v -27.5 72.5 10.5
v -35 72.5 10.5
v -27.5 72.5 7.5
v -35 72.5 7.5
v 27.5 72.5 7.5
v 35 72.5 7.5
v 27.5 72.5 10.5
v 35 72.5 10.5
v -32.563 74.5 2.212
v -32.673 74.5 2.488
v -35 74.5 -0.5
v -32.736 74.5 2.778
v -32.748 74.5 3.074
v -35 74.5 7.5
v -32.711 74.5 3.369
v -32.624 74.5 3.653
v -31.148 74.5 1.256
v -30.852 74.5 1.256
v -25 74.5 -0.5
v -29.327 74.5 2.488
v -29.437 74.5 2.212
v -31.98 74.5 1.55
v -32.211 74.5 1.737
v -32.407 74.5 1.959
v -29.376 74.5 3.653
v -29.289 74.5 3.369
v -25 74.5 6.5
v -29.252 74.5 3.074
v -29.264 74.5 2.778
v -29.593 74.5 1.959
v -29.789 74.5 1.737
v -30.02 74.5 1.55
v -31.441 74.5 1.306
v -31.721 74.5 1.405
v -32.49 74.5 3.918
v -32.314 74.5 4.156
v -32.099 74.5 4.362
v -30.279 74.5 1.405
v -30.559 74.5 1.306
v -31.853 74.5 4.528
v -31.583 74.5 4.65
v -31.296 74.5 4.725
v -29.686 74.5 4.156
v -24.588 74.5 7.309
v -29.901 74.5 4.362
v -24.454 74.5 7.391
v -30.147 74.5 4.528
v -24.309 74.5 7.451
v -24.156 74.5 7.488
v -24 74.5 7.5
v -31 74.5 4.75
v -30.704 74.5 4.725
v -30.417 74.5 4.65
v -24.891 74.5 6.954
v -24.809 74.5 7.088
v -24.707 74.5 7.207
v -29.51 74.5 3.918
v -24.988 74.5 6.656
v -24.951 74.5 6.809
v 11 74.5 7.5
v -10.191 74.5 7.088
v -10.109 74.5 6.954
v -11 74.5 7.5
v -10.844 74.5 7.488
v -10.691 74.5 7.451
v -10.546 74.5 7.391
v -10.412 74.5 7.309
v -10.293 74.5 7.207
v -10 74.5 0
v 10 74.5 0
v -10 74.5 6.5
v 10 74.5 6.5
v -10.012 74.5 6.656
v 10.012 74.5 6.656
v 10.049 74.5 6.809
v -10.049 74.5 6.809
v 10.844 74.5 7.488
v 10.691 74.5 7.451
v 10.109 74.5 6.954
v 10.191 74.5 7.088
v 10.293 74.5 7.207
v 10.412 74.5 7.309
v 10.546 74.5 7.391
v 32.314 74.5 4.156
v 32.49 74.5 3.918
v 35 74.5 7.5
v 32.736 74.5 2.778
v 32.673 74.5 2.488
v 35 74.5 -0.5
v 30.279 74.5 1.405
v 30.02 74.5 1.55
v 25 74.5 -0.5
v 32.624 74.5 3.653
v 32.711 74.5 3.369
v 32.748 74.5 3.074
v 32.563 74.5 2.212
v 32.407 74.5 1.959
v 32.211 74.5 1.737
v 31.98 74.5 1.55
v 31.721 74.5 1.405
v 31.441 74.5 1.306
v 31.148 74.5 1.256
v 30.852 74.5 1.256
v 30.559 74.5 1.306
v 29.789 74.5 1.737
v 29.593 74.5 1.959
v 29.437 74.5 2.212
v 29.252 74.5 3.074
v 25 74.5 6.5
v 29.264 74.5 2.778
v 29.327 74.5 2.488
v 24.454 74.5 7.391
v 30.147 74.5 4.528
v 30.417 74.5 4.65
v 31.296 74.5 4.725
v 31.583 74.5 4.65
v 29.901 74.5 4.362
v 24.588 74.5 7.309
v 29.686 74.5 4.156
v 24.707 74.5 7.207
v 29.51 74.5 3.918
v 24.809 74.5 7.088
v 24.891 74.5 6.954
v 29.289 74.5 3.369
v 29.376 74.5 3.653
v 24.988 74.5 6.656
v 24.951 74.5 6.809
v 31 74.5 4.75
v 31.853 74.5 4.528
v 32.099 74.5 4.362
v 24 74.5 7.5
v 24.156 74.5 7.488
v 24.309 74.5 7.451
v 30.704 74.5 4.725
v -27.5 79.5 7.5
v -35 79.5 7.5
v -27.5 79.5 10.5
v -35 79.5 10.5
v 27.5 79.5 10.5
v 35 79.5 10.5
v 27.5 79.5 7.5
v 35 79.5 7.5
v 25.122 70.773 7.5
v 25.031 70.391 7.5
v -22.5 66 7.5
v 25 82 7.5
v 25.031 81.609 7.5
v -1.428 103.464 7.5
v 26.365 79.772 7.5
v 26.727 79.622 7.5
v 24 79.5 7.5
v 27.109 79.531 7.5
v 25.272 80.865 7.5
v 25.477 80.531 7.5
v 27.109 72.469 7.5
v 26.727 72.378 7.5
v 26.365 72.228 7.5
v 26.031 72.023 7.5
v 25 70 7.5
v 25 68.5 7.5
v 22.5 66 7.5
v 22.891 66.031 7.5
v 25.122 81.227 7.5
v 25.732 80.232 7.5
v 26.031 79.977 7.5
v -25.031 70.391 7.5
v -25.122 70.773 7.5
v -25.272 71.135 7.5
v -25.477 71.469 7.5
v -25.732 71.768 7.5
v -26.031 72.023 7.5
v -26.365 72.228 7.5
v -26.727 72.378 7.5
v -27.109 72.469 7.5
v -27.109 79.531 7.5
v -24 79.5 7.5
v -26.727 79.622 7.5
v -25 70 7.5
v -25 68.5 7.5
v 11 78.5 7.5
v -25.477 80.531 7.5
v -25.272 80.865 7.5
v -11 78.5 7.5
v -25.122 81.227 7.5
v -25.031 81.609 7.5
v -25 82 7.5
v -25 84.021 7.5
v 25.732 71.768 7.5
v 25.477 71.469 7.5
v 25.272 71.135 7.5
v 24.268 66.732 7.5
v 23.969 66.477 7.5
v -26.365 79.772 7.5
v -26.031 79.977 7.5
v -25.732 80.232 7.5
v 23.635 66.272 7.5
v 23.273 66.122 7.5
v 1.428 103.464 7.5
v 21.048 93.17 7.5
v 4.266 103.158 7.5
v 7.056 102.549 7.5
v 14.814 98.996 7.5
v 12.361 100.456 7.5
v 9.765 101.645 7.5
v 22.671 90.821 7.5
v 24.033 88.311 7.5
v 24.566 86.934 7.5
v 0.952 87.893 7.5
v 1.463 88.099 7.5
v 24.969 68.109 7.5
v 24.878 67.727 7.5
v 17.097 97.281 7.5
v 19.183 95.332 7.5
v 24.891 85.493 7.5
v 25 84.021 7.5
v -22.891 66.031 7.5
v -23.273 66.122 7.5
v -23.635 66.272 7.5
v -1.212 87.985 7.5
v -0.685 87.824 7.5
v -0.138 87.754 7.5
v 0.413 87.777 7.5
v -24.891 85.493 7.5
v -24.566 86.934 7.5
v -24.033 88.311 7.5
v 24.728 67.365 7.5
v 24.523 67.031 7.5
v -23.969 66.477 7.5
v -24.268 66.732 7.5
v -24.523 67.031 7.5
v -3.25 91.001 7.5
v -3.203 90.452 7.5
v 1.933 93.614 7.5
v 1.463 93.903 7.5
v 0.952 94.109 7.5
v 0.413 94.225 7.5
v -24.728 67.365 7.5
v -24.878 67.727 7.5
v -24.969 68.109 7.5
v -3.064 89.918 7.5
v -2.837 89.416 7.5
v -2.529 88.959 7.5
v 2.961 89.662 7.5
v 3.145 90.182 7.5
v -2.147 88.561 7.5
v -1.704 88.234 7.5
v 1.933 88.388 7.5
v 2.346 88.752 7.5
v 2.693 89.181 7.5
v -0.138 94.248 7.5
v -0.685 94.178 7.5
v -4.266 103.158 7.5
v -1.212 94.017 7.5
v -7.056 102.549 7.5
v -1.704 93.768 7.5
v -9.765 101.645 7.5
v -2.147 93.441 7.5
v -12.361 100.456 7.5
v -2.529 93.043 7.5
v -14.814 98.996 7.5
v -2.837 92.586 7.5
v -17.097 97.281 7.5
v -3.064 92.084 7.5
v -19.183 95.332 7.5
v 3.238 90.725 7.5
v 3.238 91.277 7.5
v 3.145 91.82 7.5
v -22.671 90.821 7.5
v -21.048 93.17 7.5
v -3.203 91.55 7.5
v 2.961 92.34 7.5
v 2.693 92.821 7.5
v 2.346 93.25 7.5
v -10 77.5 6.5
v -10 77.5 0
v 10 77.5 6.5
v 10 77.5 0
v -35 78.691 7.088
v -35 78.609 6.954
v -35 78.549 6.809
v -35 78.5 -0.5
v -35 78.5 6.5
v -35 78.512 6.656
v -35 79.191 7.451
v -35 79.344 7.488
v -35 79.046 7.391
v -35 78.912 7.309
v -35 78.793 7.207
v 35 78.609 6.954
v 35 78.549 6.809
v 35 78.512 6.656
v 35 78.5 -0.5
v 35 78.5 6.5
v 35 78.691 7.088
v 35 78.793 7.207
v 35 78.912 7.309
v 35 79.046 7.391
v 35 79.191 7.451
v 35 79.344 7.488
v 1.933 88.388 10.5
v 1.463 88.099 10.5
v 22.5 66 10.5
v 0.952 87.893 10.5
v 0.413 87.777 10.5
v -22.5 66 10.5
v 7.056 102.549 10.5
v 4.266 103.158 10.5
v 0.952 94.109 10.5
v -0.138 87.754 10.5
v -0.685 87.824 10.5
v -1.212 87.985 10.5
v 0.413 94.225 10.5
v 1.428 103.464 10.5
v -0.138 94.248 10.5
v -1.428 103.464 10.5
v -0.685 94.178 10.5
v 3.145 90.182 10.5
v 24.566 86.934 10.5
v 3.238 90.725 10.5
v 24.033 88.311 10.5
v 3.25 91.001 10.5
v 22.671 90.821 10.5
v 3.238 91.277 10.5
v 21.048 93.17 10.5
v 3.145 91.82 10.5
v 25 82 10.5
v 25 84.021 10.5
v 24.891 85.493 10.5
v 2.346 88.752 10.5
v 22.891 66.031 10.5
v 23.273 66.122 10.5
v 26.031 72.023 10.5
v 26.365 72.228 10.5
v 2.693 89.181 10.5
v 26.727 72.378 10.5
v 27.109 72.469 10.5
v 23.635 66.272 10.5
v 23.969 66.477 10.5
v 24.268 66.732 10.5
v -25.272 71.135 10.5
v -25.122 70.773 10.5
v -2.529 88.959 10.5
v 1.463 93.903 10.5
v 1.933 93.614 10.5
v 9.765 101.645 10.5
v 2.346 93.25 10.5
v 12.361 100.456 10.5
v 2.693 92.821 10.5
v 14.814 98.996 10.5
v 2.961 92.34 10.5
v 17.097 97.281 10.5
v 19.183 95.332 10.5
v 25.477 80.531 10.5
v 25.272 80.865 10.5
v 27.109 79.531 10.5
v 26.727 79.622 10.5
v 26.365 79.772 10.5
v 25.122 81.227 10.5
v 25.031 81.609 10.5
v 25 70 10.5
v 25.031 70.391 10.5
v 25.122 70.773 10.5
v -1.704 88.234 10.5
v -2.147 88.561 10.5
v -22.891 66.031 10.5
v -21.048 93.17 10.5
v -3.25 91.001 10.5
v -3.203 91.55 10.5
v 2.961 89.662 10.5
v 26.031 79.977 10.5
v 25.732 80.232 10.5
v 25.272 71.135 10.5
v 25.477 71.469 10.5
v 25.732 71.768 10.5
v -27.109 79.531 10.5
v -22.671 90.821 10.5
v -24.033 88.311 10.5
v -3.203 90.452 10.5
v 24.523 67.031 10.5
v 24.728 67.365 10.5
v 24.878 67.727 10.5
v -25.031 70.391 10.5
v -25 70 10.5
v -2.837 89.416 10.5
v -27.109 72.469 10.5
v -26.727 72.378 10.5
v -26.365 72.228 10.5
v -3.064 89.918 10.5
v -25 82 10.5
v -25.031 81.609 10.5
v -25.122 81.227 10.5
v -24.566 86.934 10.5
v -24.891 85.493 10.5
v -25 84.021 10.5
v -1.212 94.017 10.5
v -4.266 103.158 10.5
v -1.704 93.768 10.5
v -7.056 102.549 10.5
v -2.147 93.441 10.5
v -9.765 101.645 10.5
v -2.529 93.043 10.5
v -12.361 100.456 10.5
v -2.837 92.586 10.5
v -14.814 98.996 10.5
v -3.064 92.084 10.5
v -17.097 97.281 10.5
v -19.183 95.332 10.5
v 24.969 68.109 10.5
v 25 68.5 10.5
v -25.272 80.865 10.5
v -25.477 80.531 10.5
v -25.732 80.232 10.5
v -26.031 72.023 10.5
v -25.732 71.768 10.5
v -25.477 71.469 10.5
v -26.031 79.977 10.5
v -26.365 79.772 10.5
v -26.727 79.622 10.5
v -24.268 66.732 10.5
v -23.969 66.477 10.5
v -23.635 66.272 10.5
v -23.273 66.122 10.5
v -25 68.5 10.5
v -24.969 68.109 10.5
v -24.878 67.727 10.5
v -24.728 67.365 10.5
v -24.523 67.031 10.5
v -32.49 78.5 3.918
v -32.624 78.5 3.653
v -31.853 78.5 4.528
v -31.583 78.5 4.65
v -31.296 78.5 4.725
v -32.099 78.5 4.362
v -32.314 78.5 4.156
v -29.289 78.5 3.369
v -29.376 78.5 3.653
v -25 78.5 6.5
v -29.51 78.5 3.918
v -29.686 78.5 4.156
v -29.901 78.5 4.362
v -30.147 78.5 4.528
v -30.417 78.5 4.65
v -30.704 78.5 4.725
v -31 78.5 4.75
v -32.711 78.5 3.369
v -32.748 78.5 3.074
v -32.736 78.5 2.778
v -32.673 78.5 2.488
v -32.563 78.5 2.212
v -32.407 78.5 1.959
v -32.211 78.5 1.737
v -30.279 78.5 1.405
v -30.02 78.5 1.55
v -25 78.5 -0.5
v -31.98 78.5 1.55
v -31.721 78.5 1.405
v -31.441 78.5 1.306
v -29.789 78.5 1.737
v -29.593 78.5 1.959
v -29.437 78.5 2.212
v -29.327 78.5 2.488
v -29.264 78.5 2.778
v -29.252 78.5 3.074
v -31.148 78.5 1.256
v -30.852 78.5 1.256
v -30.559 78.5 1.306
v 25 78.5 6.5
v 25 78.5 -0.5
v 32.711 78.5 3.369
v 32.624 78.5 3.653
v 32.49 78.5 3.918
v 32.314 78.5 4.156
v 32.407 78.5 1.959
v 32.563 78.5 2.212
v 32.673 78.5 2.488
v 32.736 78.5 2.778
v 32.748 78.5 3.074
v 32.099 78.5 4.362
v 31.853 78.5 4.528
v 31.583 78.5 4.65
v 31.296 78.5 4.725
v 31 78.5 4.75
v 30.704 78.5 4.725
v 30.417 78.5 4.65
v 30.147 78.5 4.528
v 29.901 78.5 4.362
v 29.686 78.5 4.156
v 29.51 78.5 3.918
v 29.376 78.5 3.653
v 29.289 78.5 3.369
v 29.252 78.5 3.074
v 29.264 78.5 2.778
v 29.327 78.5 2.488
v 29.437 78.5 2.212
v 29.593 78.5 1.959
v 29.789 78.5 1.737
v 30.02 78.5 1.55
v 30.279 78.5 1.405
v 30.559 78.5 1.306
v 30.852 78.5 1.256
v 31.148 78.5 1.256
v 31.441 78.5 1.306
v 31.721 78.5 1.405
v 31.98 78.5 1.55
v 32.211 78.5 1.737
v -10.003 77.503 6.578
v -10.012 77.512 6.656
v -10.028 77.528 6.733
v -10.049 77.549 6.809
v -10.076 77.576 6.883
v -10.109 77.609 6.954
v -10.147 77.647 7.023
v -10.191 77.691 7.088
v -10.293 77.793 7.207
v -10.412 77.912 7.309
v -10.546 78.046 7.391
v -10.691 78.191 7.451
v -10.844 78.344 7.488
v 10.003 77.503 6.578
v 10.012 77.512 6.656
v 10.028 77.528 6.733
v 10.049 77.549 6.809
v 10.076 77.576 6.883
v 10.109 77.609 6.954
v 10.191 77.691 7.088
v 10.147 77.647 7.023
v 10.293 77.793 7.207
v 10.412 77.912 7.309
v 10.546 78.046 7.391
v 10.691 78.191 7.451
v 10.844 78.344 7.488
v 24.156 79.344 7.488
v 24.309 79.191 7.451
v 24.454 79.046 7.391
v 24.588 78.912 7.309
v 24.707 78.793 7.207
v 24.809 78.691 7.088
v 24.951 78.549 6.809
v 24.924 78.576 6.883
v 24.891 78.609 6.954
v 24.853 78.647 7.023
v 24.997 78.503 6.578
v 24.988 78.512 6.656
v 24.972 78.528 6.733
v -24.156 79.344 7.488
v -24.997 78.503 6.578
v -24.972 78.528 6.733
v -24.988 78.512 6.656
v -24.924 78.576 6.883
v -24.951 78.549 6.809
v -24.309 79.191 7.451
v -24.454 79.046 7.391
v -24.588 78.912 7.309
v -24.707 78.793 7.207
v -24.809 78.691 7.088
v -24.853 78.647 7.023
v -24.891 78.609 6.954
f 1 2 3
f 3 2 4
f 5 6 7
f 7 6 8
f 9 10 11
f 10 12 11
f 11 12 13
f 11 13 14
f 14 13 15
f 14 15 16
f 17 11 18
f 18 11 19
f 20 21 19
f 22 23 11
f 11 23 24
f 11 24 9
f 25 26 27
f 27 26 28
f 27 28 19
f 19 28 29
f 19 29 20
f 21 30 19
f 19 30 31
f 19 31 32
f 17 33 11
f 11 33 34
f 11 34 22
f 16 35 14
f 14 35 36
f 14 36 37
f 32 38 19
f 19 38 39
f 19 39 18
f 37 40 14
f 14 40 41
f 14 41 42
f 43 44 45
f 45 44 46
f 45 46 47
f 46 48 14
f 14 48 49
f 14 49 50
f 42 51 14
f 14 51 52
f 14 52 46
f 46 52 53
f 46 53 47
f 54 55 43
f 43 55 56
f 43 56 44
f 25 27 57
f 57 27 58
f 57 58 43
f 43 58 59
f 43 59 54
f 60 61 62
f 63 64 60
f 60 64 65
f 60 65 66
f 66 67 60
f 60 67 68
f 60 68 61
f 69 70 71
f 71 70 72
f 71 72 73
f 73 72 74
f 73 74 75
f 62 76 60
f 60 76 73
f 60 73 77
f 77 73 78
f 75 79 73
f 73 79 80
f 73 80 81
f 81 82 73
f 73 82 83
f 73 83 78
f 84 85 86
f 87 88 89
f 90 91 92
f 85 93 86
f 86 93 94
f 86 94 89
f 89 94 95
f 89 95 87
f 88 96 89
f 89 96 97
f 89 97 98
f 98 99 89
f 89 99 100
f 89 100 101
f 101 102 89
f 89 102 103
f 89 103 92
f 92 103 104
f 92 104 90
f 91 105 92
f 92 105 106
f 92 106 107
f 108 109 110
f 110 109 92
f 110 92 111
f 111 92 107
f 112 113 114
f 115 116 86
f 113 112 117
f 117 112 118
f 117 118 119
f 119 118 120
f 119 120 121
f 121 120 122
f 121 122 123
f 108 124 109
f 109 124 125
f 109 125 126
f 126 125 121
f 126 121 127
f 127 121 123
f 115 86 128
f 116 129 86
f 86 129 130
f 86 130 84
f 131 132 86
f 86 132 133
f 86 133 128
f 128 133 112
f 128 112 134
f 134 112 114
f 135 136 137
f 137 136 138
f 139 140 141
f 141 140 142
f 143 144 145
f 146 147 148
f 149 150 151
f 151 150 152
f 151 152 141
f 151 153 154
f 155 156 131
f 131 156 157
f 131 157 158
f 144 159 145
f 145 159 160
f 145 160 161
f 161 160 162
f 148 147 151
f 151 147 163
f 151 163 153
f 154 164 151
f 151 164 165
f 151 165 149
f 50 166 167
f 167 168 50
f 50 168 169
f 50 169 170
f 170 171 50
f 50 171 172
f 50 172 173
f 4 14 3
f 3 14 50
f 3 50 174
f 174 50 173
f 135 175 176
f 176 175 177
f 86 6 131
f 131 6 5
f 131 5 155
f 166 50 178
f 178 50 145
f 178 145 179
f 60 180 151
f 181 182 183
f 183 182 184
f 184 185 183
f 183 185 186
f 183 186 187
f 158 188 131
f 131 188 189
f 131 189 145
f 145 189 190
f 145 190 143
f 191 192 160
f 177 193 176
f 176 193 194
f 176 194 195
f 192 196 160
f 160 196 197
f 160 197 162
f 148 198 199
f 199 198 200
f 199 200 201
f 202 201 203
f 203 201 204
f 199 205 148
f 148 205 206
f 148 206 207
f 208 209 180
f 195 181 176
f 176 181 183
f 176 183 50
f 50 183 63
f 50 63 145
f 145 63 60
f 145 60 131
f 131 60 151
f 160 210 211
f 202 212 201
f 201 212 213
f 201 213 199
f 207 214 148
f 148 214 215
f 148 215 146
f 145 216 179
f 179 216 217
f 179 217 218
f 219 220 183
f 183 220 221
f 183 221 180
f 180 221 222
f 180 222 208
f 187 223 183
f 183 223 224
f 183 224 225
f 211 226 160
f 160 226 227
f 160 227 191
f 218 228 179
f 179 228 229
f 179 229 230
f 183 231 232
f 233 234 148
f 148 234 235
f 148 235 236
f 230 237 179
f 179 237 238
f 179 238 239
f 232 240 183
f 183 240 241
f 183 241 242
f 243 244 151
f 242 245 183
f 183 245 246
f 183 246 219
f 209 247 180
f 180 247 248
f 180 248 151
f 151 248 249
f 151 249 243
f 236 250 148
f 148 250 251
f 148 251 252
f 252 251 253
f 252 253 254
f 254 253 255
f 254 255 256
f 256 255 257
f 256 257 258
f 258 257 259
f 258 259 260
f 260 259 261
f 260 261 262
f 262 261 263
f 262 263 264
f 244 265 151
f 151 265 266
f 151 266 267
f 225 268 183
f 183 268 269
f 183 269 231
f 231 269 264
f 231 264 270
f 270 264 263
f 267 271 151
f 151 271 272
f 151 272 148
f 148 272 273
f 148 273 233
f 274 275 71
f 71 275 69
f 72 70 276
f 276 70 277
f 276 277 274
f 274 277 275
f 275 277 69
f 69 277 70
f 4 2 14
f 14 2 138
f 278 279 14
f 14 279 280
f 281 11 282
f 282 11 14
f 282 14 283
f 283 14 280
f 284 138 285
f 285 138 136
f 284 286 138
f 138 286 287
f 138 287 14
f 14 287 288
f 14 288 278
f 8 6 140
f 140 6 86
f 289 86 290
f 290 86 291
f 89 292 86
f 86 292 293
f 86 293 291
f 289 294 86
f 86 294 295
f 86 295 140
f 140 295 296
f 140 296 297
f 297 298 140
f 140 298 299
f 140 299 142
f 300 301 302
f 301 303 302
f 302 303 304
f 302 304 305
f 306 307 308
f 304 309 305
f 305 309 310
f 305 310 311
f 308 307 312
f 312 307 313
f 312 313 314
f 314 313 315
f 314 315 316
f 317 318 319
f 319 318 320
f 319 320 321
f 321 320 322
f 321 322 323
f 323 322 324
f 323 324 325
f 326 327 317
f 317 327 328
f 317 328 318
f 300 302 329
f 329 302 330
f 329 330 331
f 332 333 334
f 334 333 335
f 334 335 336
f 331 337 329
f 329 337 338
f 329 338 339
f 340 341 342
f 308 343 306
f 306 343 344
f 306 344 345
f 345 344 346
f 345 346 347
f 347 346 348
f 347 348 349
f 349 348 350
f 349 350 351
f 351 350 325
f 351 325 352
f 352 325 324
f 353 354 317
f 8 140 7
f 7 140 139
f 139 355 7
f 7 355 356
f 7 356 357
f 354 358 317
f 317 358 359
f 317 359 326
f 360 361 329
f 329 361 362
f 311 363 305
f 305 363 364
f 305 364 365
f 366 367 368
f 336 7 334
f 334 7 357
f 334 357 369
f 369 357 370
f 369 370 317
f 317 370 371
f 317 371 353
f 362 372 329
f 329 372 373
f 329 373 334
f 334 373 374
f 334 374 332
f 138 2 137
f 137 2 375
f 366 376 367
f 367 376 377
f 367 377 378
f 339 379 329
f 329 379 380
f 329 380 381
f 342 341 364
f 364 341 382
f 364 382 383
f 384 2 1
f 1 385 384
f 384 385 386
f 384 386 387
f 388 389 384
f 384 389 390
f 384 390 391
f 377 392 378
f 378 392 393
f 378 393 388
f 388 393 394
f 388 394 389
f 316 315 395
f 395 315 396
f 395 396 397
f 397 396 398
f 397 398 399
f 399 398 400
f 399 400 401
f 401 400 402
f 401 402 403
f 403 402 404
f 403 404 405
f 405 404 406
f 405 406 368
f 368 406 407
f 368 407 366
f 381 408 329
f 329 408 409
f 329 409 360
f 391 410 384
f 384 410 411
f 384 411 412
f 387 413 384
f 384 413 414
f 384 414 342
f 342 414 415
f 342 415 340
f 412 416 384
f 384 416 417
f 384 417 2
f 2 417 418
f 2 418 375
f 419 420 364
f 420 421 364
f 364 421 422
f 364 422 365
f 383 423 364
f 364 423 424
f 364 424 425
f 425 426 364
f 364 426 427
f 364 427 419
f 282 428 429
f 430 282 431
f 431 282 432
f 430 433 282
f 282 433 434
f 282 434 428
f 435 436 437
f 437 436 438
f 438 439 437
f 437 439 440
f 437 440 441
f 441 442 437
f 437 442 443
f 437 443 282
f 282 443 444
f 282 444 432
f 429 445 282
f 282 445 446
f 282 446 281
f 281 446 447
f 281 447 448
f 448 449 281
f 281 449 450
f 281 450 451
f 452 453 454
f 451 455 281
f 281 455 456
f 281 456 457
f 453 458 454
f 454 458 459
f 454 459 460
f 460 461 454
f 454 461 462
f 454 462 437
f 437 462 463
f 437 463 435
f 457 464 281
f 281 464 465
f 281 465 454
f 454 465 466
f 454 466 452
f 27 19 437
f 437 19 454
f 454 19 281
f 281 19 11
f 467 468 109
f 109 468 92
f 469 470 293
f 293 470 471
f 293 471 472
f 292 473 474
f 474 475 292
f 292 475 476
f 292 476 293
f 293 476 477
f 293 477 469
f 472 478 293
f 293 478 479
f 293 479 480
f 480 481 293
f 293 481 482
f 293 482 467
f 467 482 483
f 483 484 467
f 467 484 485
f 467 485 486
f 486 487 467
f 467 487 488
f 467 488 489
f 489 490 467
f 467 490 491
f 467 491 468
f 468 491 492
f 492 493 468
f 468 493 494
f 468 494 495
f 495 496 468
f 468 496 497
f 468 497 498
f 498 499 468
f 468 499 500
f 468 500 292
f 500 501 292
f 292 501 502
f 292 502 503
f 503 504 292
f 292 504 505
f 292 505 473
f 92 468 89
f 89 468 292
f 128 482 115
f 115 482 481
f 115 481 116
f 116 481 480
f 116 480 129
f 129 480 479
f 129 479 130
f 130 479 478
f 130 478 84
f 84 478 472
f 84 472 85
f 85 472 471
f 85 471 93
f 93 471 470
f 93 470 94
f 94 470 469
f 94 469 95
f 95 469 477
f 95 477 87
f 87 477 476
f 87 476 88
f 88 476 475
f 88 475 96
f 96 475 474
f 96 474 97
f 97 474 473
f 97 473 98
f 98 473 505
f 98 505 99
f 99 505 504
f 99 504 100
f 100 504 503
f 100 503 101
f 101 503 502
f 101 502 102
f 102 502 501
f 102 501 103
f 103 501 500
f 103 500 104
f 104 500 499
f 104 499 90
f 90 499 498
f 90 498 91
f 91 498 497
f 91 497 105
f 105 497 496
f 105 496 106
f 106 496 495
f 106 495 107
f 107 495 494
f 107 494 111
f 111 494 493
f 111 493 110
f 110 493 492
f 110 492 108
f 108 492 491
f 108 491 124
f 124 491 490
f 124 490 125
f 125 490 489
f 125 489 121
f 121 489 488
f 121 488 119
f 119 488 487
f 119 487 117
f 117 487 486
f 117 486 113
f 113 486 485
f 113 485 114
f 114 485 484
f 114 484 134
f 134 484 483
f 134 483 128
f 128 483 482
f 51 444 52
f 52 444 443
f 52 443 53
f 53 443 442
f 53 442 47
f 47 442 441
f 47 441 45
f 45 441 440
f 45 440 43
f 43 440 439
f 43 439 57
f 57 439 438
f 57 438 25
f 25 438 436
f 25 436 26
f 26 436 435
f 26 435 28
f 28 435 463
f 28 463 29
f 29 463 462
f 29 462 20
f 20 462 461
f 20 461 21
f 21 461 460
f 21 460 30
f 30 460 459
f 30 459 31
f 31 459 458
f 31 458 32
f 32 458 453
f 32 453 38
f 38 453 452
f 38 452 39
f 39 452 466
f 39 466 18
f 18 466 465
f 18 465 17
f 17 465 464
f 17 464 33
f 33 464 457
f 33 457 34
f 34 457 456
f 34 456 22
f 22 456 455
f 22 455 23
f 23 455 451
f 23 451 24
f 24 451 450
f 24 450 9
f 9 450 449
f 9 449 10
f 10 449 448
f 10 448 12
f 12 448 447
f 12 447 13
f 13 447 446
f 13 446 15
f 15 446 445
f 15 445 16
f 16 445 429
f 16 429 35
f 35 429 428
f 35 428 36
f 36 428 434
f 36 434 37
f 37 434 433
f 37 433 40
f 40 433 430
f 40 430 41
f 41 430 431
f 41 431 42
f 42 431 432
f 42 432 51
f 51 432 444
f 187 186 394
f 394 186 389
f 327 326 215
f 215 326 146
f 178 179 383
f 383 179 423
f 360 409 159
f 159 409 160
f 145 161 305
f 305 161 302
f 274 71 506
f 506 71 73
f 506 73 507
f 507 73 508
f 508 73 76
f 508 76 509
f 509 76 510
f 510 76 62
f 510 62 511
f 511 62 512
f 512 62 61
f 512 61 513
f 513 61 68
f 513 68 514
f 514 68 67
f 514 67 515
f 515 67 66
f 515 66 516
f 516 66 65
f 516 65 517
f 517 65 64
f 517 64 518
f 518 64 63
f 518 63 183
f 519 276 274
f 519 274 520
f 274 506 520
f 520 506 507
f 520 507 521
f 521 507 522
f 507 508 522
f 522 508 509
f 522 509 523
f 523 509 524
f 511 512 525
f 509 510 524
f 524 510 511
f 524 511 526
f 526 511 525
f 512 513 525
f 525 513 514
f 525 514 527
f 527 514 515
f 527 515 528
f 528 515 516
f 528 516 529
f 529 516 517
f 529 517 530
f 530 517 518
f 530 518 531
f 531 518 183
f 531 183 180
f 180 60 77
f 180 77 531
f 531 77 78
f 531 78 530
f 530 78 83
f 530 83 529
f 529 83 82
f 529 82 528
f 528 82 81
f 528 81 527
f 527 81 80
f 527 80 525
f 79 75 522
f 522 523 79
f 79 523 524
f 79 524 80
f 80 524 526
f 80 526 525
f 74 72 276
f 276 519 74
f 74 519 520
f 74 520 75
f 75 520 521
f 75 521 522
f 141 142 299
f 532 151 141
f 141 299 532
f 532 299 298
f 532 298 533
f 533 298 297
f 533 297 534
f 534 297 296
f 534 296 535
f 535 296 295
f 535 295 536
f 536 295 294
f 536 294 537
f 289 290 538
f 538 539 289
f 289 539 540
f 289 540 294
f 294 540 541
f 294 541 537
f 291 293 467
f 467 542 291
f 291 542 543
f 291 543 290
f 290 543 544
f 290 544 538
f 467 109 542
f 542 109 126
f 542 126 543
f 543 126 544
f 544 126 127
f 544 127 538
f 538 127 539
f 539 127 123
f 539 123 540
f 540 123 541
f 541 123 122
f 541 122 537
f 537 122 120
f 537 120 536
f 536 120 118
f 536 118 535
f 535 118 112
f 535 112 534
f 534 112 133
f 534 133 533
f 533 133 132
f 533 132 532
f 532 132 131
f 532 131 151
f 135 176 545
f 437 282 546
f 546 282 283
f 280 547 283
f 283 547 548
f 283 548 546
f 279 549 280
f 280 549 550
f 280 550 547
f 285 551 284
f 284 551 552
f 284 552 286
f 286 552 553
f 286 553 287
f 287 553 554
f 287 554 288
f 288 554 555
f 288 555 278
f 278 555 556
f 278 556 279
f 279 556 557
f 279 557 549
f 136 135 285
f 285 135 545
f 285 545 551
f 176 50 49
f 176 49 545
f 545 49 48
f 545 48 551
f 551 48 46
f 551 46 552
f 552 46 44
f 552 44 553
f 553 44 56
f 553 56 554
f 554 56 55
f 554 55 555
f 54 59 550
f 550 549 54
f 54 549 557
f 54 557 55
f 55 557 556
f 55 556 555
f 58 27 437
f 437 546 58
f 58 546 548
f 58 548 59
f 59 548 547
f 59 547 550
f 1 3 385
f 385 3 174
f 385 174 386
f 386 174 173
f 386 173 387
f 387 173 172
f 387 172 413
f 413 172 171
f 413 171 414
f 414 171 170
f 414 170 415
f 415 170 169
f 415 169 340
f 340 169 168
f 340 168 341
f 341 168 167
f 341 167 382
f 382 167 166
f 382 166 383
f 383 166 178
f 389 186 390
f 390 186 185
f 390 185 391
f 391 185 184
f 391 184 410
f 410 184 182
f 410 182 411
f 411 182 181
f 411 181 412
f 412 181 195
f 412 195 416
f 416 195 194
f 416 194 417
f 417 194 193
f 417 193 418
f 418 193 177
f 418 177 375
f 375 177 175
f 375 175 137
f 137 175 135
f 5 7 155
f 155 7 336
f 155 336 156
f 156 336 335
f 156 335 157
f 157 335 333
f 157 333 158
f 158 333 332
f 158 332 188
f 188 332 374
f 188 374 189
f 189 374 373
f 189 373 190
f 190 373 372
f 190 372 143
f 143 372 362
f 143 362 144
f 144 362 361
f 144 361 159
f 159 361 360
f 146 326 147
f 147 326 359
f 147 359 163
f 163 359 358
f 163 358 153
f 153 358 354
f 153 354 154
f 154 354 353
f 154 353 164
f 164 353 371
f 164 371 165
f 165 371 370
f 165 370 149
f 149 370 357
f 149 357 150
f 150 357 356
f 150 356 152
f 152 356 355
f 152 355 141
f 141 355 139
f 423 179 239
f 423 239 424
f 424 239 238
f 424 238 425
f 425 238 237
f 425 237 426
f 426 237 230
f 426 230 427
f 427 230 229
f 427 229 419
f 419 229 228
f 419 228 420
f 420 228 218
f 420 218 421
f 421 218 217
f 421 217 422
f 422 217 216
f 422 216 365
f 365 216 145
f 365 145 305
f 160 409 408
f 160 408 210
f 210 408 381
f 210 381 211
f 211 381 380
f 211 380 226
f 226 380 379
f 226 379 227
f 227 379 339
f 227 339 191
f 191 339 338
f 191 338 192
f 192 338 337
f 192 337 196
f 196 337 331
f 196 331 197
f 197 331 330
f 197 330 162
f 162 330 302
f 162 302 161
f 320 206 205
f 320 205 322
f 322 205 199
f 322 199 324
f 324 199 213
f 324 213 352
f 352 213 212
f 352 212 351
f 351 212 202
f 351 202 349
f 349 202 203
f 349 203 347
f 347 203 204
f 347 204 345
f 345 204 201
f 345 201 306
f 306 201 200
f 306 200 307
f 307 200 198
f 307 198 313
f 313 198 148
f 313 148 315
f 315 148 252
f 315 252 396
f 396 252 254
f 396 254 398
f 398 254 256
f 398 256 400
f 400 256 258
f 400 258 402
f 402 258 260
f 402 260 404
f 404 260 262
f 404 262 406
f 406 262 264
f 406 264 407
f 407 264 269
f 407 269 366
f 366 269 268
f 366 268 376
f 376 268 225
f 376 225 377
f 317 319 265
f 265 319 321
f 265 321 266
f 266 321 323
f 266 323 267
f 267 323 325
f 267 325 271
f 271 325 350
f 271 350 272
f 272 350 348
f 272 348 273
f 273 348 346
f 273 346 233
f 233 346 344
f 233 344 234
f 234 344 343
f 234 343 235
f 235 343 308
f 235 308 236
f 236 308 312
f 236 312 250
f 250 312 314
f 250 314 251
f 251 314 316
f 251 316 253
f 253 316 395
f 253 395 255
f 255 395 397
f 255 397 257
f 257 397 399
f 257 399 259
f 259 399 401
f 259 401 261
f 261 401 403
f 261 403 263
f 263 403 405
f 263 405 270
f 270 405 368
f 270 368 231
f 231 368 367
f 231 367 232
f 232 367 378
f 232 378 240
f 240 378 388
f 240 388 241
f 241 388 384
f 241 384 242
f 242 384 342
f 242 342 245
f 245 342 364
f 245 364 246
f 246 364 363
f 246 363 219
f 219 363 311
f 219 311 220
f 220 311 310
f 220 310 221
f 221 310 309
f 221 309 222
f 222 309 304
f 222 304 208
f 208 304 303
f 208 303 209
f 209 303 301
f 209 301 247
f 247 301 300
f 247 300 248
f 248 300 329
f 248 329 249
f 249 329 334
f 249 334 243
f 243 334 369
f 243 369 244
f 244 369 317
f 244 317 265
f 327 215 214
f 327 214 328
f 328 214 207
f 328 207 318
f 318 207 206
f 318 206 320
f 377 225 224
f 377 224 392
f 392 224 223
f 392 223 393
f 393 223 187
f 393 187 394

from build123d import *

# Parameters (mm, degrees)
SKETCH1_W           = 20
SKETCH1_H           = 155
BOSS_EXTRUDE1_DEPTH = 4
SKETCH2_W           = 20
SKETCH2_H           = 4
BOSS_EXTRUDE3_DEPTH = 50
RIB2_REACH          = 96.986
SKETCH7_WALL_W      = 290.205463948
SKETCH7_WALL_H      = 4
SKETCH8_W           = 20
SKETCH8_H           = 3
BOSS_EXTRUDE4_DEPTH = 3.5
SKETCH9_W           = 70
SKETCH9_H           = 5
BOSS_EXTRUDE6_DEPTH = 3
SKETCH10_W          = 10
SKETCH10_H          = 4
BOSS_EXTRUDE7_DEPTH = 8
SKETCH12_R          = 1.75
CUT_EXTRUDE1_DEPTH  = 10
SKETCH13_W          = 111.319070758
SKETCH13_H          = 99.743885808
CUT_EXTRUDE2_DEPTH  = 152
SKETCH14_W          = 50
SKETCH14_H          = 3
BOSS_EXTRUDE8_DEPTH = 6.5
FILLET1_R           = 1
FILLET2_R           = 2.5
SKETCH15_R          = 3.25
BOSS_EXTRUDE9_DEPTH = 3
FILLET3_R           = 10


with BuildPart() as part:
    # Sketch1 → Boss-Extrude1 (new body)
    with BuildSketch(Plane.XY):
        Rectangle(SKETCH1_W, SKETCH1_H)
    extrude(amount=BOSS_EXTRUDE1_DEPTH)

    # Sketch2 → Boss-Extrude3 (add)
    with BuildSketch(Plane.XY.offset(4)):
        with Locations((0, -75.5)):
            Rectangle(SKETCH2_W, SKETCH2_H)
    extrude(amount=BOSS_EXTRUDE3_DEPTH)

    # Sketch7 wall → Rib2 (add, up to next)
    with BuildSketch(Plane(origin=(0, -26, 16.5), x_dir=(0, 0.967074537263, -0.25449329928), z_dir=(0, 0.25449329928, 0.967074537263)), mode=Mode.PRIVATE) as rib2_sk1:
        Rectangle(SKETCH7_WALL_W, SKETCH7_WALL_H)
    rib2_tool1 = extrude(rib2_sk1.sketch, amount=-RIB2_REACH, mode=Mode.PRIVATE) - part.part
    add(rib2_tool1.solids().sort_by_distance((0, -26, 16.5))[0])

    # Sketch8 → Boss-Extrude4 (add)
    with BuildSketch(Plane.XY.offset(4)):
        with Locations((0, 76)):
            Rectangle(SKETCH8_W, SKETCH8_H)
    extrude(amount=BOSS_EXTRUDE4_DEPTH)

    # Sketch9 → Boss-Extrude6 (add)
    with BuildSketch(Plane.XY.offset(7.5)):
        with Locations((0, 77)):
            Rectangle(SKETCH9_W, SKETCH9_H)
    boss_extrude6 = extrude(amount=BOSS_EXTRUDE6_DEPTH)

    # Sketch10 → Boss-Extrude7 (add)
    with BuildSketch(Plane(origin=(0, 0, 7.5), x_dir=(-1, 0, 0), z_dir=(0, 0, -1))):
        with Locations((30, 76.5)):
            Rectangle(SKETCH10_W, SKETCH10_H)
        with Locations((-30, 76.5)):
            Rectangle(SKETCH10_W, SKETCH10_H)
    extrude(amount=BOSS_EXTRUDE7_DEPTH)

    # Sketch12 → Cut-Extrude1 (cut)
    with BuildSketch(Plane(origin=(0, 78.5, 0), x_dir=(1, 0, 0), z_dir=(0, 1, 0))):
        with Locations(Location((-31, -3, 0), (0, 0, 270))):
            Circle(SKETCH12_R)
        with Locations(Location((31, -3, 0), (0, 0, 270))):
            Circle(SKETCH12_R)
    extrude(amount=-CUT_EXTRUDE1_DEPTH, mode=Mode.SUBTRACT)

    # Sketch13 → Cut-Extrude2 (cut)
    with BuildSketch(Plane.XZ.offset(77.5)):
        with Locations((2.652852139, 20.474703111)):
            Rectangle(SKETCH13_W, SKETCH13_H)
    extrude(amount=-CUT_EXTRUDE2_DEPTH, mode=Mode.SUBTRACT)

    # Sketch14 → Boss-Extrude8 (add)
    with BuildSketch(Plane(origin=(0, 79.5, 0), x_dir=(1, 0, 0), z_dir=(0, 1, 0))):
        with Locations((0, -9)):
            Rectangle(SKETCH14_W, SKETCH14_H)
    boss_extrude8 = extrude(amount=BOSS_EXTRUDE8_DEPTH)

    # Mirror1: Boss-Extrude6, Boss-Extrude8 across plane
    add(boss_extrude6.mirror(Plane(origin=(0, 76, 0), x_dir=(0, 0, 1), z_dir=(0, -1, 0))))
    add(boss_extrude8.mirror(Plane(origin=(0, 76, 0), x_dir=(0, 0, 1), z_dir=(0, -1, 0))))

    # Fillet1
    fillet1_edges = [part.edges().sort_by_distance(p)[0] for p in [
        (30, 78.5, 7.5),
        (-30, 78.5, 7.5),
        (10, 76, 7.5),
        (-10, 76, 7.5),
        (0, 77.5, 7.5),
        (25, 76.5, 7.5),
        (-25, 76.5, 7.5),
    ]]
    fillet(fillet1_edges, radius=FILLET1_R - 0.0001)  # a hair under: the kernel refuses the full size

    # Fillet2
    fillet2_edges = [part.edges().sort_by_distance(p)[0] for p in [
        (-25, 79.5, 9),
        (25, 79.5, 9),
        (-25, 66, 9),
        (25, 66, 9),
        (-25, 72.5, 9),
        (25, 72.5, 9),
    ]]
    fillet(fillet2_edges, radius=FILLET2_R)

    # Sketch15 → Boss-Extrude9 (add)
    with BuildSketch(Plane(origin=(0, 0, 7.5), x_dir=(-1, 0, 0), z_dir=(0, 0, -1))):
        with BuildLine():
            Line((25, 86), (-25, 86))
            ThreePointArc((-25, 86), (0, 103.502), (25, 86))
        make_face()
        with Locations((0, 91.001)):
            Circle(SKETCH15_R, mode=Mode.SUBTRACT)
    extrude(amount=-BOSS_EXTRUDE9_DEPTH)

    # Fillet3
    fillet3_edges = [part.edges().sort_by_distance(p)[0] for p in [
        (-25, 86, 9),
        (25, 86, 9),
    ]]
    fillet(fillet3_edges, radius=FILLET3_R)


solid = part.part
